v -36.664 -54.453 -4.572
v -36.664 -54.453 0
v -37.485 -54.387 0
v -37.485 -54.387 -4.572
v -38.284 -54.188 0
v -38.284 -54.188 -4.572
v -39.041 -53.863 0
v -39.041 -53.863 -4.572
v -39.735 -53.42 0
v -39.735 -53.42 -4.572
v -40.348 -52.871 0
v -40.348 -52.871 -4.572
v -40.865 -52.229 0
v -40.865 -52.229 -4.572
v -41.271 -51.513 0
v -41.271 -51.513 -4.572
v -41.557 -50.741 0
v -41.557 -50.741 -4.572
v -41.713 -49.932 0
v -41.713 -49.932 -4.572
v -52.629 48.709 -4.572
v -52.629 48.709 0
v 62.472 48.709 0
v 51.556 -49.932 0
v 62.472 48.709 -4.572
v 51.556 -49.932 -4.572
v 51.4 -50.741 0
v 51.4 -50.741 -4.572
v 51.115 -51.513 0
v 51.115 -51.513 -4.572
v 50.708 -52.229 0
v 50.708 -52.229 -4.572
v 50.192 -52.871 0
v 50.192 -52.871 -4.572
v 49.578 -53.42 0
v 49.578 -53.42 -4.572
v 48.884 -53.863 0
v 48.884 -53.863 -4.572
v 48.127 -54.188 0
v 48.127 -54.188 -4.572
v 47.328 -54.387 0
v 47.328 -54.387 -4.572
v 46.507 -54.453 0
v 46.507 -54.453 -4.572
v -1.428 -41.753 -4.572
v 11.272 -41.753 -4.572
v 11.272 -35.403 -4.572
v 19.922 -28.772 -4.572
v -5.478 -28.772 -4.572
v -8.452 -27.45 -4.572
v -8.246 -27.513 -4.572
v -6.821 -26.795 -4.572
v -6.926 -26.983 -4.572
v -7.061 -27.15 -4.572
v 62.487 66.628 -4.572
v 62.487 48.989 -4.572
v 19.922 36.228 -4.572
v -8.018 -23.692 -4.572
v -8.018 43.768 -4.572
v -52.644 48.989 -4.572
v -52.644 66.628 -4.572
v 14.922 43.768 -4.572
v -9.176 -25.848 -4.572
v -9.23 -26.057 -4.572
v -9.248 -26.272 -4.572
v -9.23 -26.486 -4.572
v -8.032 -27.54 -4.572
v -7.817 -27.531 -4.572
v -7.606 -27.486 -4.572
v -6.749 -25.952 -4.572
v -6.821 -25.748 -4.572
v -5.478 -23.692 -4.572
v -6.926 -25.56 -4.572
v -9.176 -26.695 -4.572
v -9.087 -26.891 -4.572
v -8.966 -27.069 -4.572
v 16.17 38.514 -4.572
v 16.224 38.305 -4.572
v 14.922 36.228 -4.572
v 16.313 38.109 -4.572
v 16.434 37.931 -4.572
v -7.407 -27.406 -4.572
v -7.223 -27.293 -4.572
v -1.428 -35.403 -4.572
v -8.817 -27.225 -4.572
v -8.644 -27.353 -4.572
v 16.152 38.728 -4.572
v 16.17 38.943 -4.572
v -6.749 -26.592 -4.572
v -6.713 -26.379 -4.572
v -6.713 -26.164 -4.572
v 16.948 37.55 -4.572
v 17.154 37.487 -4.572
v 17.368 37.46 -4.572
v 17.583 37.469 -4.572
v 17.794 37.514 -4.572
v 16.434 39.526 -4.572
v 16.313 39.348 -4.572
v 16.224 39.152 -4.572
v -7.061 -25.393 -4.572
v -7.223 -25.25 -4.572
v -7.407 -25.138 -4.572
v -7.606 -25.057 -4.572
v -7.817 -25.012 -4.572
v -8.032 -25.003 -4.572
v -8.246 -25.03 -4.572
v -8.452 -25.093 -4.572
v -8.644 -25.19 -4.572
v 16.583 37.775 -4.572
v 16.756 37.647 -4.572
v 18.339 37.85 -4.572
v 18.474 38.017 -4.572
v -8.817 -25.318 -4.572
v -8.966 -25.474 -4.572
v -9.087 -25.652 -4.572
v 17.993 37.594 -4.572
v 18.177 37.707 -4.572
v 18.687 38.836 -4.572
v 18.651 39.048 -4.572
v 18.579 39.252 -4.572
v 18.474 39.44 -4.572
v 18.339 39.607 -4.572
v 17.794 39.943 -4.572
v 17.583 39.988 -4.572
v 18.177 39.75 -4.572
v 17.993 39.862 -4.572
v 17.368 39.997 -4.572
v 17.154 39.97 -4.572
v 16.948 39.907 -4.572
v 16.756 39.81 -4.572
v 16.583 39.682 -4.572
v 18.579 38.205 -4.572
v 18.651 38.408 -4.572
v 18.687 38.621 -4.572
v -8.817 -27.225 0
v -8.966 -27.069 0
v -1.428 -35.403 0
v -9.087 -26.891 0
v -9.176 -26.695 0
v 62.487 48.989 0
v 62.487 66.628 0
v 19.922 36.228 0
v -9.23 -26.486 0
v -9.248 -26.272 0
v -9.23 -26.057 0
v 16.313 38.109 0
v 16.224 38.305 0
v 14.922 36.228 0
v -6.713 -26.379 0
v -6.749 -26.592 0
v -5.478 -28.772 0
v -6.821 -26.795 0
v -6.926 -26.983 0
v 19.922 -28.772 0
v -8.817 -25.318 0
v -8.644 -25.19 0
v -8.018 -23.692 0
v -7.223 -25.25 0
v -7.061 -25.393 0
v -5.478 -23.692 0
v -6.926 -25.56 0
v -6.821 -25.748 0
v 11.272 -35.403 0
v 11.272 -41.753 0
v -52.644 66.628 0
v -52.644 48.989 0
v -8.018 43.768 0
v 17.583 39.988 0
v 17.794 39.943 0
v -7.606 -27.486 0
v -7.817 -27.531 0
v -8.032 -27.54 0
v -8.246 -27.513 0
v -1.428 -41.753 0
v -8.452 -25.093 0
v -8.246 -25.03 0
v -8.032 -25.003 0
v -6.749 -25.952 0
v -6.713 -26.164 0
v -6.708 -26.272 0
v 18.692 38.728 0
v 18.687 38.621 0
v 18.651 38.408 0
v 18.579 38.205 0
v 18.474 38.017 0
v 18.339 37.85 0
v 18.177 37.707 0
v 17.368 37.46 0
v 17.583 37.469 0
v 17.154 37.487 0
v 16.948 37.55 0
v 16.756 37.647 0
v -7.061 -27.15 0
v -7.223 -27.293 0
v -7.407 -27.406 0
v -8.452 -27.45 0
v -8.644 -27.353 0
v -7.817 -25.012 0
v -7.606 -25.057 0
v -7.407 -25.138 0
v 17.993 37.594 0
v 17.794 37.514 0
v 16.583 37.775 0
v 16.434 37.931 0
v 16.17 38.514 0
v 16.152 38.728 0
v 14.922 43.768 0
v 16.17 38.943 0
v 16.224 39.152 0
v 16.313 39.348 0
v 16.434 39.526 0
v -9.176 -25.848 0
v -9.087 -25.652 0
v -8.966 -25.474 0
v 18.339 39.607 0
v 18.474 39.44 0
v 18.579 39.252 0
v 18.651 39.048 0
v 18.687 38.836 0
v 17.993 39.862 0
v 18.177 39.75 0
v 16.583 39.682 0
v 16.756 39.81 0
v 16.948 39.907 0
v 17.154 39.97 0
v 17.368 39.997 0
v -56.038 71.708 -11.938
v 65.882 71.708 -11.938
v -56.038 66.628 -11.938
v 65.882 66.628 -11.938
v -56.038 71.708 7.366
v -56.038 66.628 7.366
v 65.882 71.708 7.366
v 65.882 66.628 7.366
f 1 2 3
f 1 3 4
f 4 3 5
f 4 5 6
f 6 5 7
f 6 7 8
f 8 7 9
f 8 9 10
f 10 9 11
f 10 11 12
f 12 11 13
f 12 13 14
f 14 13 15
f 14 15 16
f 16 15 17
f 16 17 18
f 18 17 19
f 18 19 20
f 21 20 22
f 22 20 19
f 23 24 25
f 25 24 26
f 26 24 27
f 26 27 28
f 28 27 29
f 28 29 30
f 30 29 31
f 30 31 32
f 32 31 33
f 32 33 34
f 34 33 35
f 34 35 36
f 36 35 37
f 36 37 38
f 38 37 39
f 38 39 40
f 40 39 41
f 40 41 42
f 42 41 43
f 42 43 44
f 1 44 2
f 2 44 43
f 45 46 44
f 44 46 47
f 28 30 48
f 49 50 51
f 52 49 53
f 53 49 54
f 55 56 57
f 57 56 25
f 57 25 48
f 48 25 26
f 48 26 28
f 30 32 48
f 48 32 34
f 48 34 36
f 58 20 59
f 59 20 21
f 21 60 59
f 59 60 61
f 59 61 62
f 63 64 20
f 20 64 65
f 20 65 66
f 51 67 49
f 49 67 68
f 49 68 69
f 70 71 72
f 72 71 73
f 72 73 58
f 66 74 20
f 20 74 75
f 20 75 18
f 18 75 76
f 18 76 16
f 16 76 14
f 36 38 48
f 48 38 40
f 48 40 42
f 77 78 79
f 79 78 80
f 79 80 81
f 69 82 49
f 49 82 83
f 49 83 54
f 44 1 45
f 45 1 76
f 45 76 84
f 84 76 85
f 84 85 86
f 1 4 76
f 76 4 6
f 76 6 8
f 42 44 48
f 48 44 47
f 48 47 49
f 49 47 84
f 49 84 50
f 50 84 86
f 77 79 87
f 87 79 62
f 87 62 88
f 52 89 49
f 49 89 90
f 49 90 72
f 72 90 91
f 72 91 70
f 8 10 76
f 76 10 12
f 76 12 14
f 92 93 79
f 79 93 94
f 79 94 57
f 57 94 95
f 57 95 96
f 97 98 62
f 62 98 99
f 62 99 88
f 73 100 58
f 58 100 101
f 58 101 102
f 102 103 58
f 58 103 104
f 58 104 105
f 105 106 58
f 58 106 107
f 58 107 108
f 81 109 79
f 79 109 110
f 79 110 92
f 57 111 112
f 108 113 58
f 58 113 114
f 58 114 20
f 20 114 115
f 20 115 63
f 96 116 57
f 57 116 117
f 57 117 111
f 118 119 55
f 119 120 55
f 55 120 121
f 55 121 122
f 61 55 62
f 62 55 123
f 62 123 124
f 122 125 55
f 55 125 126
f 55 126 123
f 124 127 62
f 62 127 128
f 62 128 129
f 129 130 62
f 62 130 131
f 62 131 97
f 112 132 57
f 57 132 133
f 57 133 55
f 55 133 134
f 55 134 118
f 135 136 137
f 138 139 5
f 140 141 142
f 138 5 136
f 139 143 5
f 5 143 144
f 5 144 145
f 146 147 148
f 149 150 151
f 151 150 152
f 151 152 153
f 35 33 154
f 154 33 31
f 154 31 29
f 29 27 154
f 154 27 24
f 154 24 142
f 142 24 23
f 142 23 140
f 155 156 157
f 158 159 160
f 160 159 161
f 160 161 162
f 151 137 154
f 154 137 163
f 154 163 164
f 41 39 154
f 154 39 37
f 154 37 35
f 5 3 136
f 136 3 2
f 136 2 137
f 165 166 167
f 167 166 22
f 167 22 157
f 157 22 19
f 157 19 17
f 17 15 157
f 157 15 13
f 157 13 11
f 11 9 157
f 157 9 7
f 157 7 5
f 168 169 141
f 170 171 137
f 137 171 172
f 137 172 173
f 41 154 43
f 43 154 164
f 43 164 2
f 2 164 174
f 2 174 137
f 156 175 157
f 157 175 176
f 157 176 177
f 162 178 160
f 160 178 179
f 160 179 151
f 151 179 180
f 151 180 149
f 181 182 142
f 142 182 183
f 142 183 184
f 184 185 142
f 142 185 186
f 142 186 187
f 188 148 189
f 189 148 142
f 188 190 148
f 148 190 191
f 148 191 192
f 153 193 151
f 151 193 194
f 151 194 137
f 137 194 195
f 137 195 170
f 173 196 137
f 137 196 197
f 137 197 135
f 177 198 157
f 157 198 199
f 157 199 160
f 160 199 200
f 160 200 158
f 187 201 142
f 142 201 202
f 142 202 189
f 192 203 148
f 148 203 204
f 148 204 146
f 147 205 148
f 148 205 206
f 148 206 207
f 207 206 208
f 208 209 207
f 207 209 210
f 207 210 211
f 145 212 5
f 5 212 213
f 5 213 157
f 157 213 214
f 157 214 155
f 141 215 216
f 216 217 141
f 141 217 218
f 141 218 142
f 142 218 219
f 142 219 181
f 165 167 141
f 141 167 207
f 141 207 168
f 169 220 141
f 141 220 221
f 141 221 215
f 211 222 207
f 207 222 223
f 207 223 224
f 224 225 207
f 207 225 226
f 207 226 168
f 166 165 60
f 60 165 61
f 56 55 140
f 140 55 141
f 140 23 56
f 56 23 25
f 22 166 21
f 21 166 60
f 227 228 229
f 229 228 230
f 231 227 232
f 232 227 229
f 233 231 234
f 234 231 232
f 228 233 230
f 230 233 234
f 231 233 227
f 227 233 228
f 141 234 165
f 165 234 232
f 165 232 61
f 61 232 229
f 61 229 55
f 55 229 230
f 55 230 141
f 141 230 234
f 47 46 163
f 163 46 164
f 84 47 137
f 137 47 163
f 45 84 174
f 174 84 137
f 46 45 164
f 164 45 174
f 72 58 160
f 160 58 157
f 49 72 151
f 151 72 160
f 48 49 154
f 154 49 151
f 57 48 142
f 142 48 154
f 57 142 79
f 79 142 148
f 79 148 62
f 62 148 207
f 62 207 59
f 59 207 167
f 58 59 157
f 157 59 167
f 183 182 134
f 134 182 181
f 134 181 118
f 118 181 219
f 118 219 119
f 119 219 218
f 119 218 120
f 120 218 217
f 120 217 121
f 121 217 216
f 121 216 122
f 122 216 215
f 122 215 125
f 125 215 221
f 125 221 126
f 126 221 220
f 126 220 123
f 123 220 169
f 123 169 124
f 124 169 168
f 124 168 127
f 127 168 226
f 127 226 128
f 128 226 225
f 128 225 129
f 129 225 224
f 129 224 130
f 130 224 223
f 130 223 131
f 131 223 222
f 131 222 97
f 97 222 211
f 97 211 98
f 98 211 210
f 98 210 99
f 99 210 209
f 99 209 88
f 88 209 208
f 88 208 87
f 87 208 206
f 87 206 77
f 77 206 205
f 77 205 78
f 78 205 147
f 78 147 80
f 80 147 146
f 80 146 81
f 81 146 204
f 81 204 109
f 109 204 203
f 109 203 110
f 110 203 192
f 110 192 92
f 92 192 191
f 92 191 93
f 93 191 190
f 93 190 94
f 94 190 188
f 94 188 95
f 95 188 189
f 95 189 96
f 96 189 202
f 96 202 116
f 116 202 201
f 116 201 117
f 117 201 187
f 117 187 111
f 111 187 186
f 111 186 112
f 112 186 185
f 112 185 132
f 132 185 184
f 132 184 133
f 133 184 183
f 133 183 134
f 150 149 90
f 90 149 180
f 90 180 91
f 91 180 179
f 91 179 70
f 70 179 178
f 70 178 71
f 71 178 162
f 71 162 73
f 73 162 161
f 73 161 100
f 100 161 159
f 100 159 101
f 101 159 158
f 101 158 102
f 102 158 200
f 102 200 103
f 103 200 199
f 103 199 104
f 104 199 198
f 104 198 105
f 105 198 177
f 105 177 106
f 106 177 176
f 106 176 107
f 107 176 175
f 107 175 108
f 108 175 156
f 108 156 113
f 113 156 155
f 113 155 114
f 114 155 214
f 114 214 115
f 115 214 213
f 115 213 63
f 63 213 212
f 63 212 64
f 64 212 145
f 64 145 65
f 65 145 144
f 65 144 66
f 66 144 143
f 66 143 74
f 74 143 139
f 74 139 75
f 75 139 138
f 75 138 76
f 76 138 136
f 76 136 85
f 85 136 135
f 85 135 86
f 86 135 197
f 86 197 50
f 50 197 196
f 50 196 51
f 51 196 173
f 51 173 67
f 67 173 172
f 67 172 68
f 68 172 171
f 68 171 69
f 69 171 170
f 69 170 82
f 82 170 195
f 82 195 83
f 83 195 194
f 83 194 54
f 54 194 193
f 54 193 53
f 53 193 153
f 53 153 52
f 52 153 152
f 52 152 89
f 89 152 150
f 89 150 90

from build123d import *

# Parameters (mm, degrees)
BOSS_EXTRUDE1_DEPTH = 4.572
SKETCH3_W           = 115.1315452
SKETCH3_H           = 4.572
BOSS_EXTRUDE2_DEPTH = 17.78
FILLET1_R           = 2.54
SKETCH4_W           = 121.92
SKETCH4_H           = 19.304
BOSS_EXTRUDE4_DEPTH = 5.08
SKETCH5_W           = 12.7
SKETCH5_H           = 6.35
CUT_EXTRUDE1_DEPTH  = 5.08
SKETCH6_R           = 1.27
CUT_EXTRUDE2_DEPTH  = 6.35


with BuildPart() as part:
    # Sketch2 → Boss-Extrude1 (new body)
    with BuildSketch(Plane(origin=(0, 0, 0), x_dir=(-1, 0, 0), z_dir=(0, 0, -1))):
        with BuildLine():
            Line((-62.487415839, 48.848476089), (52.644129361, 48.848476089))
            Line((52.644129361, 48.848476089), (41.713156468, -49.932022311))
            ThreePointArc((41.713156468, -49.932022311), (40.052782988, -53.157778108), (36.663977171, -54.453284069))
            Line((36.663977171, -54.453284069), (-46.507263649, -54.453284069))
            ThreePointArc((-46.507263649, -54.453284069), (-49.896069466, -53.157778108), (-51.556442946, -49.932022311))
            Line((-51.556442946, -49.932022311), (-62.487415839, 48.848476089))
        make_face()
    extrude(amount=BOSS_EXTRUDE1_DEPTH)

    # Sketch3 → Boss-Extrude2 (add)
    with BuildSketch(Plane(origin=(0, 48.848476089, 0), x_dir=(1, 0, 0), z_dir=(0, 1, 0))):
        with Locations((4.921643239, 2.286)):
            Rectangle(SKETCH3_W, SKETCH3_H)
    extrude(amount=BOSS_EXTRUDE2_DEPTH)

    # Fillet1
    fillet1_edges = [part.edges().sort_by_distance(p)[0] for p in [
        (62.487415839, 48.848476089, -2.286),
        (-52.644129361, 48.848476089, -2.286),
    ]]
    fillet(fillet1_edges, radius=FILLET1_R)

    # Sketch4 → Boss-Extrude4 (add)
    with BuildSketch(Plane(origin=(0, 66.628476089, 0), x_dir=(1, 0, 0), z_dir=(0, 1, 0))):
        with Locations((4.921643239, 2.286)):
            Rectangle(SKETCH4_W, SKETCH4_H)
    extrude(amount=BOSS_EXTRUDE4_DEPTH)

    # Sketch5 → Cut-Extrude1 (cut)
    with BuildSketch(Plane(origin=(0, 0, -4.572), x_dir=(-1, 0, 0), z_dir=(0, 0, -1))):
        with Locations((-4.921643239, -38.578284069)):
            Rectangle(SKETCH5_W, SKETCH5_H)
    extrude(amount=-CUT_EXTRUDE1_DEPTH, mode=Mode.SUBTRACT)

    # Sketch6 → Cut-Extrude2 (cut)
    with BuildSketch(Plane(origin=(0, 0, -4.572), x_dir=(-1, 0, 0), z_dir=(0, 0, -1))):
        Polygon((-14.921643239, 43.768476089), (-14.921643239, 41.228476089), (-14.921643239, 36.228476089), (-19.921643239, 36.228476089), (-19.921643239, -28.771523911), (5.478356761, -28.771523911), (5.478356761, -23.691523911), (8.018356761, -23.691523911), (8.018356761, 43.768476089), align=None)
        with Locations((-17.421643239, 38.728476089)):
            Circle(SKETCH6_R)
        with Locations((7.978356761, -26.271523911)):
            Circle(SKETCH6_R)
    extrude(amount=-CUT_EXTRUDE2_DEPTH, mode=Mode.SUBTRACT)


solid = part.part
